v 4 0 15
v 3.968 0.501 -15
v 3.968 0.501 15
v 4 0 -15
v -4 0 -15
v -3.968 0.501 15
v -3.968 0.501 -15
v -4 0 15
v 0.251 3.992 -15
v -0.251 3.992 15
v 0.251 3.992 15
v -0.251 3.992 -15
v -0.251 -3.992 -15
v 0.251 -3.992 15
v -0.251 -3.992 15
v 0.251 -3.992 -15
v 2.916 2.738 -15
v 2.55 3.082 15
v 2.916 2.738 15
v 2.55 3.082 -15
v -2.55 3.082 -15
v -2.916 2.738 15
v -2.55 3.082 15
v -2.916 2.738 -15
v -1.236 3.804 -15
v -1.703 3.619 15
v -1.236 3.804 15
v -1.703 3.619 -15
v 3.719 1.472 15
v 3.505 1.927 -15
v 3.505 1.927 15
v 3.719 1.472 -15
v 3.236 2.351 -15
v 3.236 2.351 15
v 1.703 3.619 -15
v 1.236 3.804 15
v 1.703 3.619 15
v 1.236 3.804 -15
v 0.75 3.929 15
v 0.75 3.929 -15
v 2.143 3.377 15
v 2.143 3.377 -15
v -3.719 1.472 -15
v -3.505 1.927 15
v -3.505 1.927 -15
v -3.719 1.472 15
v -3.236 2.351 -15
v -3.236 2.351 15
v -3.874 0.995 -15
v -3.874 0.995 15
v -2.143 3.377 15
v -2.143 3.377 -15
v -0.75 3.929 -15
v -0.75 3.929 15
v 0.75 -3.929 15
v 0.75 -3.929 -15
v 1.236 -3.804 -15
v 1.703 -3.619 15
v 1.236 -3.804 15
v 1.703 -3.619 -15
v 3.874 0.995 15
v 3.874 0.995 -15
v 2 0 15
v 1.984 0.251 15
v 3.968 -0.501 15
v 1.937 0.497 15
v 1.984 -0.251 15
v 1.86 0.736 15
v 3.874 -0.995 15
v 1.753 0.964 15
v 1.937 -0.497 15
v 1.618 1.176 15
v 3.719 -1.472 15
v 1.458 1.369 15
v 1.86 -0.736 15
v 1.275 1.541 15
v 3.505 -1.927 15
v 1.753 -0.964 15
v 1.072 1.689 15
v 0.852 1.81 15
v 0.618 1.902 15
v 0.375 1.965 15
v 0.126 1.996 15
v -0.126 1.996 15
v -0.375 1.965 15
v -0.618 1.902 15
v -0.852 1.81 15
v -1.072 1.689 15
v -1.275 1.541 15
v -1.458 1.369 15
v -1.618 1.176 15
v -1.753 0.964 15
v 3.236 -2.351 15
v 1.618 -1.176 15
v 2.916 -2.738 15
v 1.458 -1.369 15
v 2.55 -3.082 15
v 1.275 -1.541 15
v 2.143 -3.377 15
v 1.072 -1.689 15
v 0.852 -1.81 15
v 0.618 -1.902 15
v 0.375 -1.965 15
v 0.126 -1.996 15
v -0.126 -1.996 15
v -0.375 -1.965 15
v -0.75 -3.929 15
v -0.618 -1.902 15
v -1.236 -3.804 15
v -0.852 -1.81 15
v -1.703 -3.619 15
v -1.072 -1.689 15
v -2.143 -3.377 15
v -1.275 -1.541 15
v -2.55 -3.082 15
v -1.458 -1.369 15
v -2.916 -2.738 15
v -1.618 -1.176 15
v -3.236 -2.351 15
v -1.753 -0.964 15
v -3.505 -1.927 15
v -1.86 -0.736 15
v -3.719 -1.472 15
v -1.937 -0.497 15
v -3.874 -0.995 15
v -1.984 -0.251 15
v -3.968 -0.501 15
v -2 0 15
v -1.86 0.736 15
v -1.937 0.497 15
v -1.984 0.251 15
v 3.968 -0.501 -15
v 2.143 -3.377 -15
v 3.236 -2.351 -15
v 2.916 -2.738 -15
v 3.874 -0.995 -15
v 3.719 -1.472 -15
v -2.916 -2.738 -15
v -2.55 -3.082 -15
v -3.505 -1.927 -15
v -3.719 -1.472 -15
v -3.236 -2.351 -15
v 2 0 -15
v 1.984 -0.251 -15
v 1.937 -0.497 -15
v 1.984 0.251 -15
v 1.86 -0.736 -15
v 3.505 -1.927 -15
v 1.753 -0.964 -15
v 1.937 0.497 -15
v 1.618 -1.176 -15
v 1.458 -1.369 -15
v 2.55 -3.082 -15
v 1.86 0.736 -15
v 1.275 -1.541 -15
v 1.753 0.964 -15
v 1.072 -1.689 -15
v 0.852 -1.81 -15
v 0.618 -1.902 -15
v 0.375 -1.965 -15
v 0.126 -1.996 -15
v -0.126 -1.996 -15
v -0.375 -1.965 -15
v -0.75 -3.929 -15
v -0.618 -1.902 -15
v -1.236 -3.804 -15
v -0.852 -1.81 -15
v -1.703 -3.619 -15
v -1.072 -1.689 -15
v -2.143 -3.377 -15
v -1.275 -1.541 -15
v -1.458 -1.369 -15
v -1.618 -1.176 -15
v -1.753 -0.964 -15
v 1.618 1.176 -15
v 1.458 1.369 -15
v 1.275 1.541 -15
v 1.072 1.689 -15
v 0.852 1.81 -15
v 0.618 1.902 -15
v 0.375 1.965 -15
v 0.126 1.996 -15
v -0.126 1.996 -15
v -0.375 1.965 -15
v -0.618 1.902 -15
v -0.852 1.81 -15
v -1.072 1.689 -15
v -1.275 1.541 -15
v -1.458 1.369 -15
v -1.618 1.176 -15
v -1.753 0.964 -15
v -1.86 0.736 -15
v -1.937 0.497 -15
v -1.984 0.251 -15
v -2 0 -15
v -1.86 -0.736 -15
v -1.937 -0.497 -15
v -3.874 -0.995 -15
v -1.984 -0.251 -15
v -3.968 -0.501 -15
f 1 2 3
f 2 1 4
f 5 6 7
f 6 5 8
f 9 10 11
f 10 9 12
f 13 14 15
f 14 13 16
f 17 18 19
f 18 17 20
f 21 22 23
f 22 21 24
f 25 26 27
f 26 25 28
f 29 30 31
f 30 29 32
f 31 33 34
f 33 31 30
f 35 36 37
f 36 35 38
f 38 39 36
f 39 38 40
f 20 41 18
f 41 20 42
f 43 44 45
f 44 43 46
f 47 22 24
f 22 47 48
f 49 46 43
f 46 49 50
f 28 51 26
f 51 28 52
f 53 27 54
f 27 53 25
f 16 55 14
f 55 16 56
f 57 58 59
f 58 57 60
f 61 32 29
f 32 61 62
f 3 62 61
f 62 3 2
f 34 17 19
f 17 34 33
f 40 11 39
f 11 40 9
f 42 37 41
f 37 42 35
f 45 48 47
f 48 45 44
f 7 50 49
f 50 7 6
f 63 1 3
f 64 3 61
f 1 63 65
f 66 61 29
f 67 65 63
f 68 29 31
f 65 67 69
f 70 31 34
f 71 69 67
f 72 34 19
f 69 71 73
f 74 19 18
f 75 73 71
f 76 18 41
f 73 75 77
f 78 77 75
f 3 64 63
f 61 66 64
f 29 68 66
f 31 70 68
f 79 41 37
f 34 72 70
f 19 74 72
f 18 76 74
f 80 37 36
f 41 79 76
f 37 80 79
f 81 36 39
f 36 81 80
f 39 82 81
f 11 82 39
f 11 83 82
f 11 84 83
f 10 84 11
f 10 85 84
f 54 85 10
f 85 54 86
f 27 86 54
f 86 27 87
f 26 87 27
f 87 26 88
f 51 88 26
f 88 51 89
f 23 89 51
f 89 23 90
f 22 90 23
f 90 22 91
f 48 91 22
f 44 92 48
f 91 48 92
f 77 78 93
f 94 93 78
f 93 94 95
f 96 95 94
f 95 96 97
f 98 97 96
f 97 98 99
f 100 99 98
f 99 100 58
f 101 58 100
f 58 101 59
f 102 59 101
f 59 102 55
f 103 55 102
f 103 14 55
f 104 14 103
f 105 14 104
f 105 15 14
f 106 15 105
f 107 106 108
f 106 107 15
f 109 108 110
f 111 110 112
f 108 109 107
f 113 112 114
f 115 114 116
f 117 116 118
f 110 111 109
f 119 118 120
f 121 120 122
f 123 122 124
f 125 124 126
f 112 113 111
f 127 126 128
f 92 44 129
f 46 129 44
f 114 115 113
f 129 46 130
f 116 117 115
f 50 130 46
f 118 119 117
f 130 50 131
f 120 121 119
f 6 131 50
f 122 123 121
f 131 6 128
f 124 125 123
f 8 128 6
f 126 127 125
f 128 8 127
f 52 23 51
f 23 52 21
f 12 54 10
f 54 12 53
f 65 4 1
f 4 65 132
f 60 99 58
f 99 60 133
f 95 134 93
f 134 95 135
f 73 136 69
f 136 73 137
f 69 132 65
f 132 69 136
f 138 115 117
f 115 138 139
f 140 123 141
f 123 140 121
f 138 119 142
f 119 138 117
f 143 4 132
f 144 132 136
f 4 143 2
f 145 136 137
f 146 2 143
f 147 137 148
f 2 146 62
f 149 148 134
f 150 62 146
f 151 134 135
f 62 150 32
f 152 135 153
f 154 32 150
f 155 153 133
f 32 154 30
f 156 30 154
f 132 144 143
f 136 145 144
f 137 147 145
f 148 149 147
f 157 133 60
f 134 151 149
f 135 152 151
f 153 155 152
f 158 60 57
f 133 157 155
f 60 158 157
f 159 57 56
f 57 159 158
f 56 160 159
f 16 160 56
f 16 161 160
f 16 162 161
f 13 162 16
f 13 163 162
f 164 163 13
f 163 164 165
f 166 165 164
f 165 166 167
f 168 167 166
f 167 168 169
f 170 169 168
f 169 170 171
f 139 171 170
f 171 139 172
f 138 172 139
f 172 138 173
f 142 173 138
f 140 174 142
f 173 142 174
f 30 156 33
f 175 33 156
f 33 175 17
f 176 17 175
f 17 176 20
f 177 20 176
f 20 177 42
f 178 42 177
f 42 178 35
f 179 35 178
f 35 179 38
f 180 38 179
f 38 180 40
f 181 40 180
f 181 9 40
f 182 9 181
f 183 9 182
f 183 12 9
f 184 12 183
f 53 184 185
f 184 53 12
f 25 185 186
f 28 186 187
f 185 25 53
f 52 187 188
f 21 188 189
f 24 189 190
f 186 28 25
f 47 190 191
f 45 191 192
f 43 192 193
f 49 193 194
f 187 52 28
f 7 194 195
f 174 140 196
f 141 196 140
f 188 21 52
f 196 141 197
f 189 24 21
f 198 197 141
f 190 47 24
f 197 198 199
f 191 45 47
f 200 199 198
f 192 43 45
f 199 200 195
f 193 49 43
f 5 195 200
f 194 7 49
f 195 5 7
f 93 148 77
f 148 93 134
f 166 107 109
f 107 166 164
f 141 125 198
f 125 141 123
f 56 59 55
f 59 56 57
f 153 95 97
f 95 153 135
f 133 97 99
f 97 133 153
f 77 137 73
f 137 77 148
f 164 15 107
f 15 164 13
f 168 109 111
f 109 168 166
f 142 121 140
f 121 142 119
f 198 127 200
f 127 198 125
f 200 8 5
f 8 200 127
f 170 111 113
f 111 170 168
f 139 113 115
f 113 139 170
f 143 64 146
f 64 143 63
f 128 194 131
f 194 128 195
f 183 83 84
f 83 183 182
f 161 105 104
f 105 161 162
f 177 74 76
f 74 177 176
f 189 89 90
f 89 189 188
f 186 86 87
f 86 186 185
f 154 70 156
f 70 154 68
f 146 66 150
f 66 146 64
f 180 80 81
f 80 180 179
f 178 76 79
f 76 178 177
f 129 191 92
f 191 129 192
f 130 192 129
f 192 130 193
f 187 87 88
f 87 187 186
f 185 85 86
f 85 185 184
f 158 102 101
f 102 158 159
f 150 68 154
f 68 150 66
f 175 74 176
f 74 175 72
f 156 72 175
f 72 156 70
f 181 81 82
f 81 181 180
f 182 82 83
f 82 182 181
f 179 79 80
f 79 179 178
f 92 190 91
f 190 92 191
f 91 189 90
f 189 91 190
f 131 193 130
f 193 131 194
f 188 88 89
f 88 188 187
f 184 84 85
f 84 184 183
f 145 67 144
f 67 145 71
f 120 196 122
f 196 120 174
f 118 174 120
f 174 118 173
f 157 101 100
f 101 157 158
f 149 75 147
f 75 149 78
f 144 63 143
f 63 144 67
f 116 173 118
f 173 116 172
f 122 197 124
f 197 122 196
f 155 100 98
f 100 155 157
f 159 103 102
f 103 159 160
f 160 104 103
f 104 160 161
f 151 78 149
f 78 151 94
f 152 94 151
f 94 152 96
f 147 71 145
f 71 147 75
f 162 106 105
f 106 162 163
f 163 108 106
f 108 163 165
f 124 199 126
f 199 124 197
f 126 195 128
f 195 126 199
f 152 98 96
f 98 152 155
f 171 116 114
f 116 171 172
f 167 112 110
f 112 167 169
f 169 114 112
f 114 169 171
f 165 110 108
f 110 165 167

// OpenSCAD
$fn = 50;


difference() {
	union() {
		translate(v = [0, 0, -15.0000000000]) {
			cylinder(h = 30, r = 4.0000000000);
		}
	}
	union() {
		translate(v = [0, 0, -100.0000000000]) {
			cylinder(h = 200, r = 2);
		}
	}
}
